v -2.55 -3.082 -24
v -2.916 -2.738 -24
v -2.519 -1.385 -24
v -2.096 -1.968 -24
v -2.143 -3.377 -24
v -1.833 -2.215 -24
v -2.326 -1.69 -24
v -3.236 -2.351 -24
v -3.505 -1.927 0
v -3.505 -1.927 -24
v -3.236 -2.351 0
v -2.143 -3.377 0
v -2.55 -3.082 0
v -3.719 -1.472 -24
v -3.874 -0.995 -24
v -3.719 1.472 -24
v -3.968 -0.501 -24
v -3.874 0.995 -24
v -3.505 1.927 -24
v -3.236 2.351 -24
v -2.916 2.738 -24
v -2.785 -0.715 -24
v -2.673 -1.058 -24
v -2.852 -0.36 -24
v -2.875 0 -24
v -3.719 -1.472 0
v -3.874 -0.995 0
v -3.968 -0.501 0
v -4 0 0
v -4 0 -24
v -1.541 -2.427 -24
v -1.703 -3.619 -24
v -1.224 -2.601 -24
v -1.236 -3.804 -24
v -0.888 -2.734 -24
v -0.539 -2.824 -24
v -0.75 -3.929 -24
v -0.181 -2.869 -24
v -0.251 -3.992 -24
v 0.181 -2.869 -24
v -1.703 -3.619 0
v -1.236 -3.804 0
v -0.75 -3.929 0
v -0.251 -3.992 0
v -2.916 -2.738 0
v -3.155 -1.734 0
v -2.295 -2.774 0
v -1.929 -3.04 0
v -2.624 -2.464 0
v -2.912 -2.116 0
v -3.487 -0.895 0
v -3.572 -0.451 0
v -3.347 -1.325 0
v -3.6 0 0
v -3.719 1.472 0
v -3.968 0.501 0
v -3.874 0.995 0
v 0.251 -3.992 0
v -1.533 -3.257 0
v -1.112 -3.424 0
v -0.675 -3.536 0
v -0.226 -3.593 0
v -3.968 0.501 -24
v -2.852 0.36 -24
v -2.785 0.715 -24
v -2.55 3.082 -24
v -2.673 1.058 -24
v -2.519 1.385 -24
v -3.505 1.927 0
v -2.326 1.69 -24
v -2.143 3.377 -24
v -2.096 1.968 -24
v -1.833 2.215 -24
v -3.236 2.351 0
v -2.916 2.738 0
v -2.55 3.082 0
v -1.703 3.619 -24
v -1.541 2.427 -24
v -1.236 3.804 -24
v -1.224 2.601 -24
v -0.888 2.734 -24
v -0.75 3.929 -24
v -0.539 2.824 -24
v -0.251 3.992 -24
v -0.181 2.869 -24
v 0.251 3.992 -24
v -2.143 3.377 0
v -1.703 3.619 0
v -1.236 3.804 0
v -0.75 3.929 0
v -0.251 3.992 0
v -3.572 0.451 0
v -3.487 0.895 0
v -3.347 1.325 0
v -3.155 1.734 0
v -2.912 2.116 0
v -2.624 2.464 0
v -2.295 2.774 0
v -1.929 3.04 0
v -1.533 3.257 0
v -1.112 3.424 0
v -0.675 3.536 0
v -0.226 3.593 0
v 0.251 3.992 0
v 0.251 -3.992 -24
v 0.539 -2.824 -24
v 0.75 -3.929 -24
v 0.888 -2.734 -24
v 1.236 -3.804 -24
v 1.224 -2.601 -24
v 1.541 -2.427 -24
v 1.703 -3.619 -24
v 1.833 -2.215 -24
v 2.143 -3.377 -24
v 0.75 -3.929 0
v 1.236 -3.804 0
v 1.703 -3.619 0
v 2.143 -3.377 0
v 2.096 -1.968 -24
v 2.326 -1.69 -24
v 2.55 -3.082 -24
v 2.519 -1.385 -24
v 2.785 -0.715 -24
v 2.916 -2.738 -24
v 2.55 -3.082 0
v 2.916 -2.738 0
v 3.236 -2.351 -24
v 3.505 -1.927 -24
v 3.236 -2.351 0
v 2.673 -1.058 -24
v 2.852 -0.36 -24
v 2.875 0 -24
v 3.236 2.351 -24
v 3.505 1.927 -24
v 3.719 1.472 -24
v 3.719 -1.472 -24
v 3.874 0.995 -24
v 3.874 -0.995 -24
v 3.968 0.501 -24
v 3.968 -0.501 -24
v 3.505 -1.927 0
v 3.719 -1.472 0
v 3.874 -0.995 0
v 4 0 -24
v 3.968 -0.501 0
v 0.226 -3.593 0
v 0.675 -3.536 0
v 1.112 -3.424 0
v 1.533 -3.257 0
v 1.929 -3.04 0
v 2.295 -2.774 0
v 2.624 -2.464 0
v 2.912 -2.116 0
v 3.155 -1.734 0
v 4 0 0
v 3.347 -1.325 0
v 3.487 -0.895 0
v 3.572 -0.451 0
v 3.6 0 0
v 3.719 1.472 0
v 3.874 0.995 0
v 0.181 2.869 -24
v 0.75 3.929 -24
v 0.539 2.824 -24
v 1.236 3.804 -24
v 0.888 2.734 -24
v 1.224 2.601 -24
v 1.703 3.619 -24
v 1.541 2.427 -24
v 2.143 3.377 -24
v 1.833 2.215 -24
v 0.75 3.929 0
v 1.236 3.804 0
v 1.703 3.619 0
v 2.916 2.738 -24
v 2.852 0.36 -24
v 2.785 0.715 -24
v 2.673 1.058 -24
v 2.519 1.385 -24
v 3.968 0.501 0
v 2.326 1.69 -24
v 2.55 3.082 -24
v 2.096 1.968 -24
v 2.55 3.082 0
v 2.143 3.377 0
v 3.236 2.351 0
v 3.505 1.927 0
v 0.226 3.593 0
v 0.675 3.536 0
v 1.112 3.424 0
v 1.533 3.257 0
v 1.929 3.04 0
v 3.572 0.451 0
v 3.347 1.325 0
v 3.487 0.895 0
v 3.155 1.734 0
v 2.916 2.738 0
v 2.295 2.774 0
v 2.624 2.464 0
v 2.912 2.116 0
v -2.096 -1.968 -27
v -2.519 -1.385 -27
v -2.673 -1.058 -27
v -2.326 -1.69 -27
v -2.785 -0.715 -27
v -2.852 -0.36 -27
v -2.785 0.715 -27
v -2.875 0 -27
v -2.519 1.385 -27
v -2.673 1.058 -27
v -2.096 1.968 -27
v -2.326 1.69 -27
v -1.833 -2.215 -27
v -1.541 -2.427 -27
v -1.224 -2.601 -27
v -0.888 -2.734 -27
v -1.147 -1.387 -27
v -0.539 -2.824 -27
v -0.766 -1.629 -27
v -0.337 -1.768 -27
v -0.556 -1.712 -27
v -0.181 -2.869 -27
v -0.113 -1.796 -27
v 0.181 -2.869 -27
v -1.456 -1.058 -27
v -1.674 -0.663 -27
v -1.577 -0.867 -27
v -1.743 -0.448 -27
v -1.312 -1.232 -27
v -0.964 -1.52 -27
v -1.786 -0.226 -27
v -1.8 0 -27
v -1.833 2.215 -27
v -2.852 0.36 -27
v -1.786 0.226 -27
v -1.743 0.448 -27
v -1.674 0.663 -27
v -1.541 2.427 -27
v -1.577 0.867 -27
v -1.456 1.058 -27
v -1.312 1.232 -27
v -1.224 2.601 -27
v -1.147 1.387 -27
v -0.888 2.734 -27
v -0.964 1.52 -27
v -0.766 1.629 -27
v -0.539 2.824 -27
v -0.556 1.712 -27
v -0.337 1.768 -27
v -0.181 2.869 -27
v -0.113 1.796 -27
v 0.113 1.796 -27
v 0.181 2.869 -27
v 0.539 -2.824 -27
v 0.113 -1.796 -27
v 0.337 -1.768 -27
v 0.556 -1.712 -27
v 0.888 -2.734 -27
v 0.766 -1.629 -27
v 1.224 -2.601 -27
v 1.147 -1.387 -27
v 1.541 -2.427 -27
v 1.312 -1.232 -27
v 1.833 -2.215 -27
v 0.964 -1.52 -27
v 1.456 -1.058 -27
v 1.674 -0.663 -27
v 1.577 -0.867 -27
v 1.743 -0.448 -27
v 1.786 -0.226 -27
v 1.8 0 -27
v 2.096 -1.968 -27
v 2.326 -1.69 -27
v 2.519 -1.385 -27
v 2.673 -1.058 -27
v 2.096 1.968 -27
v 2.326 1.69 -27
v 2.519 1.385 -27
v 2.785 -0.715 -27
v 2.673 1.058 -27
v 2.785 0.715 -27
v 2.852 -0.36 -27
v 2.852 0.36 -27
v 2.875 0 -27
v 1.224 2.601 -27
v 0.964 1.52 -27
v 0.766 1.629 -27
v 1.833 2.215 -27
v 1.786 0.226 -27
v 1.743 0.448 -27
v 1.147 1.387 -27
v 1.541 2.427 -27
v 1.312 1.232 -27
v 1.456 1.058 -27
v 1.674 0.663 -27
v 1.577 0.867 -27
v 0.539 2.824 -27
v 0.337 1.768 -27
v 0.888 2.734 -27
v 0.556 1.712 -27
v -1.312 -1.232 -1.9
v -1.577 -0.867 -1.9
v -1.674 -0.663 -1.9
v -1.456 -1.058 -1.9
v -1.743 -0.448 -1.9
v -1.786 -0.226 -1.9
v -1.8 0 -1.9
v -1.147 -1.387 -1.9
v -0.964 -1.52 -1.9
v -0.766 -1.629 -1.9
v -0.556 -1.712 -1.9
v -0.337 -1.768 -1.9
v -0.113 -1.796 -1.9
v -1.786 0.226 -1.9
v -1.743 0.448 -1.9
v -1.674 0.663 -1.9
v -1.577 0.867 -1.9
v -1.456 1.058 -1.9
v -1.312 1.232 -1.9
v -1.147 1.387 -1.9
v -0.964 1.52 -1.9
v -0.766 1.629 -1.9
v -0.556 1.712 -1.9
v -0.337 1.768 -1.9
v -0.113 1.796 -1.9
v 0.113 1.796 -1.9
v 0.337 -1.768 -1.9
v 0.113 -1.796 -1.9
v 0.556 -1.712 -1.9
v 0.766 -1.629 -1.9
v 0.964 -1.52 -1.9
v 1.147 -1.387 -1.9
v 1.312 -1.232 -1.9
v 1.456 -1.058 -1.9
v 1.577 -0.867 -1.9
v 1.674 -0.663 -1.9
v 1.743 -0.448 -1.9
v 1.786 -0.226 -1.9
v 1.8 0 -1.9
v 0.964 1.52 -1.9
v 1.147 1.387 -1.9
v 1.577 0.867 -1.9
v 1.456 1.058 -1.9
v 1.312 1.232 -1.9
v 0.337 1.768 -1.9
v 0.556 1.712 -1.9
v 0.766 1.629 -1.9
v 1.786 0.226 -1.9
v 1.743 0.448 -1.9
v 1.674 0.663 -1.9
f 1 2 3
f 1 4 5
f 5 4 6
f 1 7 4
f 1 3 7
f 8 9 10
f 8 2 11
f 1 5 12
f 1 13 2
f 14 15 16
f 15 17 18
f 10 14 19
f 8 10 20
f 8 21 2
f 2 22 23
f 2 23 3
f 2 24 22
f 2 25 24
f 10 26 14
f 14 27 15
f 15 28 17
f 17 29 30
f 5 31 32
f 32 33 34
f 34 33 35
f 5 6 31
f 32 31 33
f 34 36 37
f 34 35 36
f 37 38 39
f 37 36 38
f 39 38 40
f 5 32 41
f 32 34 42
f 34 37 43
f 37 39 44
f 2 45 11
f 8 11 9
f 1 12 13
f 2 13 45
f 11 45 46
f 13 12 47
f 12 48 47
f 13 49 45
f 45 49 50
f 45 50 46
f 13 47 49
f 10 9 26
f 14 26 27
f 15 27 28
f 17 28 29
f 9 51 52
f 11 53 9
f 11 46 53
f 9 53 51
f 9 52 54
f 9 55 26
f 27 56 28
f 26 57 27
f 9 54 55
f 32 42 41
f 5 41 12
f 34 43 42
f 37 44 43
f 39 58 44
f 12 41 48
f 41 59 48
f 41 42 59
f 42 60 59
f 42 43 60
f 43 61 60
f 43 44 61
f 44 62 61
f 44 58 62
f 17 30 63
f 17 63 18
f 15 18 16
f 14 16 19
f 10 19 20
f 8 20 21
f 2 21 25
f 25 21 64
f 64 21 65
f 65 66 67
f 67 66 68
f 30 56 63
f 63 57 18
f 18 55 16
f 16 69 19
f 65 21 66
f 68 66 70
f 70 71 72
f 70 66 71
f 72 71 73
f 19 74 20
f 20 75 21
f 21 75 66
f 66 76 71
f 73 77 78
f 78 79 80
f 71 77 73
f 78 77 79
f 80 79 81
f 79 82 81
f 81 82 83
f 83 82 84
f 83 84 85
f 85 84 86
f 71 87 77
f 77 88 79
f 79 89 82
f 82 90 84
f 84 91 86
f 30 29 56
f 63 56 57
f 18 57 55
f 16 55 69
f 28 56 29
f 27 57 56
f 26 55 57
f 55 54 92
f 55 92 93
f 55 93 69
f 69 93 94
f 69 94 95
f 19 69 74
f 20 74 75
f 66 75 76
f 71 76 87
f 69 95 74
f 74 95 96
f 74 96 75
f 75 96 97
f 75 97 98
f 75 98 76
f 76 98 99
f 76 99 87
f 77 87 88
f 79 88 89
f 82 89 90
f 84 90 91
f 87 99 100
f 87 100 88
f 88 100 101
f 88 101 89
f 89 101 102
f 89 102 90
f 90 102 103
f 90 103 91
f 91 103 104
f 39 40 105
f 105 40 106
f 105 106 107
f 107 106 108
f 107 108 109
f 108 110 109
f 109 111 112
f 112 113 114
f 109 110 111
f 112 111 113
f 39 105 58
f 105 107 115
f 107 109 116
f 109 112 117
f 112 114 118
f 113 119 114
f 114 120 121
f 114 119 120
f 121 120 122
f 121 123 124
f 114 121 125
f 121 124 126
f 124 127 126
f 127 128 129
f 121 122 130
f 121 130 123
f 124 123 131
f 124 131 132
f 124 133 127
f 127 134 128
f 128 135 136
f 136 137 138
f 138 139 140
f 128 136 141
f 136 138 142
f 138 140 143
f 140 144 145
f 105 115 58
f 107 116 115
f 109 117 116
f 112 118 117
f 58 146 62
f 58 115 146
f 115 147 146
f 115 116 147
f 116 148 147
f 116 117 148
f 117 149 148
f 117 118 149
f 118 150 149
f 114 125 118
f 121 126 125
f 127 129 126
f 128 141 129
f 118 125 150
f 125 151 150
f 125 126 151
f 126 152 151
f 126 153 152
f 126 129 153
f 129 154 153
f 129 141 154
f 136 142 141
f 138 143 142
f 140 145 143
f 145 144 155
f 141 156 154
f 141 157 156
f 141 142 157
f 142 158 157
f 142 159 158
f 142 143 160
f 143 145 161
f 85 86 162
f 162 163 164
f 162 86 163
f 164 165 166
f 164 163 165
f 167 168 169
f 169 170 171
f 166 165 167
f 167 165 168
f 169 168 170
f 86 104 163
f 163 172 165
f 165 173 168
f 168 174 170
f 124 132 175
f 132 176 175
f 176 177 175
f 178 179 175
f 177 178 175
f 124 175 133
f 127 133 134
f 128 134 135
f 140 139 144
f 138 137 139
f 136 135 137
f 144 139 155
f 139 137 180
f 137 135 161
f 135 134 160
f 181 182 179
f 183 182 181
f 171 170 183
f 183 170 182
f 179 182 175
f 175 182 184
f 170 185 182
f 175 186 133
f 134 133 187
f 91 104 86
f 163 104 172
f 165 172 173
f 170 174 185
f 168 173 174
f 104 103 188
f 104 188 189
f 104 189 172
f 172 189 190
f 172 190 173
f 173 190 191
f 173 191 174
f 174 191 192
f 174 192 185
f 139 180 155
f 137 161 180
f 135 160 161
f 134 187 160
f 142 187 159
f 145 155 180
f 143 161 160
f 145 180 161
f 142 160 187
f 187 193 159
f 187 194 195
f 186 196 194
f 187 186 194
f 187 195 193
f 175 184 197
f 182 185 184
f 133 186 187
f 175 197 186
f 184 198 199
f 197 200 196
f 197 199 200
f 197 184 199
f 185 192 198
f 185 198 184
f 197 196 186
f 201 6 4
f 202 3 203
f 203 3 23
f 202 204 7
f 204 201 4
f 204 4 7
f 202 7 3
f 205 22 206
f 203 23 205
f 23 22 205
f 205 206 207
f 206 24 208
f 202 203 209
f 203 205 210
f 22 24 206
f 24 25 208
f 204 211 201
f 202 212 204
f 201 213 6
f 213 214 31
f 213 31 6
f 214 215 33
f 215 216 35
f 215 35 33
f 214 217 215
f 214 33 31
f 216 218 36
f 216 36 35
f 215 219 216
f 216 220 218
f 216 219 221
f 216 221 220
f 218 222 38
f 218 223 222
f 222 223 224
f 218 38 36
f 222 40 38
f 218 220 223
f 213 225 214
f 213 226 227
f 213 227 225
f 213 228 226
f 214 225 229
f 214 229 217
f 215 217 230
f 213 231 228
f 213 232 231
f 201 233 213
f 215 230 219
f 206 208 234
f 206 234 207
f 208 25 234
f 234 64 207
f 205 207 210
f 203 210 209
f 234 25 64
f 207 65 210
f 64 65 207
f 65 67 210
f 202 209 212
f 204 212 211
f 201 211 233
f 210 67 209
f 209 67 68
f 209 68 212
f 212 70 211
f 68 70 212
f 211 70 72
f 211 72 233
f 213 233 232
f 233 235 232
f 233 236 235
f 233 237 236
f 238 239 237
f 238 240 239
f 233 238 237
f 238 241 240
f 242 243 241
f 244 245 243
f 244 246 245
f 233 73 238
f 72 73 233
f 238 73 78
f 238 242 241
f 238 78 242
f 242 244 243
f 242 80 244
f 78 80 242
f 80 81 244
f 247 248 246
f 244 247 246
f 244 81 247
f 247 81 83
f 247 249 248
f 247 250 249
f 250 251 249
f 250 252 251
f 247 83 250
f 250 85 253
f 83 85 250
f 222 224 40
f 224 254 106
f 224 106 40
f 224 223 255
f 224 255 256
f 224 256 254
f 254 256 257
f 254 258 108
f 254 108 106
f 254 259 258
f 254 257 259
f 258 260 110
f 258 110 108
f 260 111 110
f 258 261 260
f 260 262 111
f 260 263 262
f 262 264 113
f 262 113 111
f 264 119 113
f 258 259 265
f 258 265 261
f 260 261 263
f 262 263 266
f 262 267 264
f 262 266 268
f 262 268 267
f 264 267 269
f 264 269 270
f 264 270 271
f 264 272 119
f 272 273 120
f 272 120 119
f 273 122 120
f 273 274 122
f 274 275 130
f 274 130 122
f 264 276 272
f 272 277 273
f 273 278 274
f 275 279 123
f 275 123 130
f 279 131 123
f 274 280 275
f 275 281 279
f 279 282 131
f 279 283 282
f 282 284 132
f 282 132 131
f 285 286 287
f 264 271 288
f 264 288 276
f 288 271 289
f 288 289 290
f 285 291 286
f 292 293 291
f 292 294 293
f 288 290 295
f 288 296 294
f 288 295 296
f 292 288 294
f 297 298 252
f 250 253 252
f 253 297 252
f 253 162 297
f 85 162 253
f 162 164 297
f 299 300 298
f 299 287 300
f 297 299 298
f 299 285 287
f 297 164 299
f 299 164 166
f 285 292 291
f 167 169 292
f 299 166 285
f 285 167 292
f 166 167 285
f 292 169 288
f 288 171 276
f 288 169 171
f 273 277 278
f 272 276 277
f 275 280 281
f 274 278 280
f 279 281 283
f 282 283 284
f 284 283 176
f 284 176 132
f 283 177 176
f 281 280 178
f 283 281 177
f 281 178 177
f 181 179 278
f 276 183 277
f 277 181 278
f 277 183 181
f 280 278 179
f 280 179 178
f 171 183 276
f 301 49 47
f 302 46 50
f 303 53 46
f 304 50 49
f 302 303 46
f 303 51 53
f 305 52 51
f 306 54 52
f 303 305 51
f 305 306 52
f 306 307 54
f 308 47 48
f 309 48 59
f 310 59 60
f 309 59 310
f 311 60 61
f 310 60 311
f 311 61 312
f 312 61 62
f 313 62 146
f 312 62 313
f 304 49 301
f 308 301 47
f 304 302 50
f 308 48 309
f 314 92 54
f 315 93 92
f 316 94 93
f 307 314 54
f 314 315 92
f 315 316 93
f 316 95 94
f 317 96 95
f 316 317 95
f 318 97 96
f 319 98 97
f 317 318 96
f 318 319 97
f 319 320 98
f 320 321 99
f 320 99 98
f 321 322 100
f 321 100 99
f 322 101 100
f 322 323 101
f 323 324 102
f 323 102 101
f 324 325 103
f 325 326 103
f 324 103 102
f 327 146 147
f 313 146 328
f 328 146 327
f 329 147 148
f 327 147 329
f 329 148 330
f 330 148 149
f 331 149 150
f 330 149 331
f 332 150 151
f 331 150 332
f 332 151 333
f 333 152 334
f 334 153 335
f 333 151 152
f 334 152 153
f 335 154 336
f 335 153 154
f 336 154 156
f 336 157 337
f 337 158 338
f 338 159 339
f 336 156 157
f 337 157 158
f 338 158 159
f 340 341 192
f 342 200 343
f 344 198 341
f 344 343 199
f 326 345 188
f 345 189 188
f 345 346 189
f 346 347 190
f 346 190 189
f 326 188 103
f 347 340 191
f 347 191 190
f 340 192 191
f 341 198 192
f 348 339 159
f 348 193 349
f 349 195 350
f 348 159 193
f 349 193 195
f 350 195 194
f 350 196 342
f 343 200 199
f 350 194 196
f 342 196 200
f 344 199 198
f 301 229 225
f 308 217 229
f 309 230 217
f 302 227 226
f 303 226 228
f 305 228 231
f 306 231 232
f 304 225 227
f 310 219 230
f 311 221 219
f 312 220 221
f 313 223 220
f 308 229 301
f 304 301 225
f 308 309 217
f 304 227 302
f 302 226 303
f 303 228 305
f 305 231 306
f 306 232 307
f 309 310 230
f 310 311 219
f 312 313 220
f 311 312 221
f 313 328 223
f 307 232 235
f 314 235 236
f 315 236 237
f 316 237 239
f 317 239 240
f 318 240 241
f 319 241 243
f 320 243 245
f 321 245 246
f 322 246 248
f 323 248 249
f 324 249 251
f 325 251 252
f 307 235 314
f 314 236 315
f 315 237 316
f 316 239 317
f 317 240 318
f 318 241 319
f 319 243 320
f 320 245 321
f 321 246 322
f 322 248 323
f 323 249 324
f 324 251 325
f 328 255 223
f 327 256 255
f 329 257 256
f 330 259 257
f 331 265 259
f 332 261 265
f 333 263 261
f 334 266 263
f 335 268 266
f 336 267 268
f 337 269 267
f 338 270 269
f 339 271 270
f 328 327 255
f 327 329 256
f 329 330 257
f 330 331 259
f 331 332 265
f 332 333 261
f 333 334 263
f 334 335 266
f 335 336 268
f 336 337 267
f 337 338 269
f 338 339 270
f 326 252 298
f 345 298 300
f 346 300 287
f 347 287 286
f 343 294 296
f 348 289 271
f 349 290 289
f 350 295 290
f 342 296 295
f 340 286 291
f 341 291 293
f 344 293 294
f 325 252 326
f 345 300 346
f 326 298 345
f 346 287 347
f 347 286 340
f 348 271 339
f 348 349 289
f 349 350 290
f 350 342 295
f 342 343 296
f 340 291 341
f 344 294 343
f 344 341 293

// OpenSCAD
$fn = 50;

difference() {
	union() {
		translate(v = [0, 0, -24.0]) {
			cylinder(h = 27, r = 4.0);
		}
		#translate(v = [0, 0, -27.0]) {
			cylinder(h = 27, r = 2.875);
		}
	}
	union() {
		translate(v = [0, 0, 0]) {
			rotate(a = [0, 0, 0]) {
				difference() {
					union() {
						translate(v = [0, 0, -27.0]) {
							cylinder(h = 27, r = 1.5);
						}
						translate(v = [0, 0, -1.9]) {
							cylinder(h = 1.9, r1 = 1.8, r2 = 3.6);
						}
						translate(v = [0, 0, -27.0]) {
							cylinder(h = 27, r = 1.8);
						}
						translate(v = [0, 0, -27.0]) {
							cylinder(h = 27, r = 1.5);
						}
					}
					union();
				}
			}
		}
		#cylinder(h = 3, r = 5.0);
	}
}
